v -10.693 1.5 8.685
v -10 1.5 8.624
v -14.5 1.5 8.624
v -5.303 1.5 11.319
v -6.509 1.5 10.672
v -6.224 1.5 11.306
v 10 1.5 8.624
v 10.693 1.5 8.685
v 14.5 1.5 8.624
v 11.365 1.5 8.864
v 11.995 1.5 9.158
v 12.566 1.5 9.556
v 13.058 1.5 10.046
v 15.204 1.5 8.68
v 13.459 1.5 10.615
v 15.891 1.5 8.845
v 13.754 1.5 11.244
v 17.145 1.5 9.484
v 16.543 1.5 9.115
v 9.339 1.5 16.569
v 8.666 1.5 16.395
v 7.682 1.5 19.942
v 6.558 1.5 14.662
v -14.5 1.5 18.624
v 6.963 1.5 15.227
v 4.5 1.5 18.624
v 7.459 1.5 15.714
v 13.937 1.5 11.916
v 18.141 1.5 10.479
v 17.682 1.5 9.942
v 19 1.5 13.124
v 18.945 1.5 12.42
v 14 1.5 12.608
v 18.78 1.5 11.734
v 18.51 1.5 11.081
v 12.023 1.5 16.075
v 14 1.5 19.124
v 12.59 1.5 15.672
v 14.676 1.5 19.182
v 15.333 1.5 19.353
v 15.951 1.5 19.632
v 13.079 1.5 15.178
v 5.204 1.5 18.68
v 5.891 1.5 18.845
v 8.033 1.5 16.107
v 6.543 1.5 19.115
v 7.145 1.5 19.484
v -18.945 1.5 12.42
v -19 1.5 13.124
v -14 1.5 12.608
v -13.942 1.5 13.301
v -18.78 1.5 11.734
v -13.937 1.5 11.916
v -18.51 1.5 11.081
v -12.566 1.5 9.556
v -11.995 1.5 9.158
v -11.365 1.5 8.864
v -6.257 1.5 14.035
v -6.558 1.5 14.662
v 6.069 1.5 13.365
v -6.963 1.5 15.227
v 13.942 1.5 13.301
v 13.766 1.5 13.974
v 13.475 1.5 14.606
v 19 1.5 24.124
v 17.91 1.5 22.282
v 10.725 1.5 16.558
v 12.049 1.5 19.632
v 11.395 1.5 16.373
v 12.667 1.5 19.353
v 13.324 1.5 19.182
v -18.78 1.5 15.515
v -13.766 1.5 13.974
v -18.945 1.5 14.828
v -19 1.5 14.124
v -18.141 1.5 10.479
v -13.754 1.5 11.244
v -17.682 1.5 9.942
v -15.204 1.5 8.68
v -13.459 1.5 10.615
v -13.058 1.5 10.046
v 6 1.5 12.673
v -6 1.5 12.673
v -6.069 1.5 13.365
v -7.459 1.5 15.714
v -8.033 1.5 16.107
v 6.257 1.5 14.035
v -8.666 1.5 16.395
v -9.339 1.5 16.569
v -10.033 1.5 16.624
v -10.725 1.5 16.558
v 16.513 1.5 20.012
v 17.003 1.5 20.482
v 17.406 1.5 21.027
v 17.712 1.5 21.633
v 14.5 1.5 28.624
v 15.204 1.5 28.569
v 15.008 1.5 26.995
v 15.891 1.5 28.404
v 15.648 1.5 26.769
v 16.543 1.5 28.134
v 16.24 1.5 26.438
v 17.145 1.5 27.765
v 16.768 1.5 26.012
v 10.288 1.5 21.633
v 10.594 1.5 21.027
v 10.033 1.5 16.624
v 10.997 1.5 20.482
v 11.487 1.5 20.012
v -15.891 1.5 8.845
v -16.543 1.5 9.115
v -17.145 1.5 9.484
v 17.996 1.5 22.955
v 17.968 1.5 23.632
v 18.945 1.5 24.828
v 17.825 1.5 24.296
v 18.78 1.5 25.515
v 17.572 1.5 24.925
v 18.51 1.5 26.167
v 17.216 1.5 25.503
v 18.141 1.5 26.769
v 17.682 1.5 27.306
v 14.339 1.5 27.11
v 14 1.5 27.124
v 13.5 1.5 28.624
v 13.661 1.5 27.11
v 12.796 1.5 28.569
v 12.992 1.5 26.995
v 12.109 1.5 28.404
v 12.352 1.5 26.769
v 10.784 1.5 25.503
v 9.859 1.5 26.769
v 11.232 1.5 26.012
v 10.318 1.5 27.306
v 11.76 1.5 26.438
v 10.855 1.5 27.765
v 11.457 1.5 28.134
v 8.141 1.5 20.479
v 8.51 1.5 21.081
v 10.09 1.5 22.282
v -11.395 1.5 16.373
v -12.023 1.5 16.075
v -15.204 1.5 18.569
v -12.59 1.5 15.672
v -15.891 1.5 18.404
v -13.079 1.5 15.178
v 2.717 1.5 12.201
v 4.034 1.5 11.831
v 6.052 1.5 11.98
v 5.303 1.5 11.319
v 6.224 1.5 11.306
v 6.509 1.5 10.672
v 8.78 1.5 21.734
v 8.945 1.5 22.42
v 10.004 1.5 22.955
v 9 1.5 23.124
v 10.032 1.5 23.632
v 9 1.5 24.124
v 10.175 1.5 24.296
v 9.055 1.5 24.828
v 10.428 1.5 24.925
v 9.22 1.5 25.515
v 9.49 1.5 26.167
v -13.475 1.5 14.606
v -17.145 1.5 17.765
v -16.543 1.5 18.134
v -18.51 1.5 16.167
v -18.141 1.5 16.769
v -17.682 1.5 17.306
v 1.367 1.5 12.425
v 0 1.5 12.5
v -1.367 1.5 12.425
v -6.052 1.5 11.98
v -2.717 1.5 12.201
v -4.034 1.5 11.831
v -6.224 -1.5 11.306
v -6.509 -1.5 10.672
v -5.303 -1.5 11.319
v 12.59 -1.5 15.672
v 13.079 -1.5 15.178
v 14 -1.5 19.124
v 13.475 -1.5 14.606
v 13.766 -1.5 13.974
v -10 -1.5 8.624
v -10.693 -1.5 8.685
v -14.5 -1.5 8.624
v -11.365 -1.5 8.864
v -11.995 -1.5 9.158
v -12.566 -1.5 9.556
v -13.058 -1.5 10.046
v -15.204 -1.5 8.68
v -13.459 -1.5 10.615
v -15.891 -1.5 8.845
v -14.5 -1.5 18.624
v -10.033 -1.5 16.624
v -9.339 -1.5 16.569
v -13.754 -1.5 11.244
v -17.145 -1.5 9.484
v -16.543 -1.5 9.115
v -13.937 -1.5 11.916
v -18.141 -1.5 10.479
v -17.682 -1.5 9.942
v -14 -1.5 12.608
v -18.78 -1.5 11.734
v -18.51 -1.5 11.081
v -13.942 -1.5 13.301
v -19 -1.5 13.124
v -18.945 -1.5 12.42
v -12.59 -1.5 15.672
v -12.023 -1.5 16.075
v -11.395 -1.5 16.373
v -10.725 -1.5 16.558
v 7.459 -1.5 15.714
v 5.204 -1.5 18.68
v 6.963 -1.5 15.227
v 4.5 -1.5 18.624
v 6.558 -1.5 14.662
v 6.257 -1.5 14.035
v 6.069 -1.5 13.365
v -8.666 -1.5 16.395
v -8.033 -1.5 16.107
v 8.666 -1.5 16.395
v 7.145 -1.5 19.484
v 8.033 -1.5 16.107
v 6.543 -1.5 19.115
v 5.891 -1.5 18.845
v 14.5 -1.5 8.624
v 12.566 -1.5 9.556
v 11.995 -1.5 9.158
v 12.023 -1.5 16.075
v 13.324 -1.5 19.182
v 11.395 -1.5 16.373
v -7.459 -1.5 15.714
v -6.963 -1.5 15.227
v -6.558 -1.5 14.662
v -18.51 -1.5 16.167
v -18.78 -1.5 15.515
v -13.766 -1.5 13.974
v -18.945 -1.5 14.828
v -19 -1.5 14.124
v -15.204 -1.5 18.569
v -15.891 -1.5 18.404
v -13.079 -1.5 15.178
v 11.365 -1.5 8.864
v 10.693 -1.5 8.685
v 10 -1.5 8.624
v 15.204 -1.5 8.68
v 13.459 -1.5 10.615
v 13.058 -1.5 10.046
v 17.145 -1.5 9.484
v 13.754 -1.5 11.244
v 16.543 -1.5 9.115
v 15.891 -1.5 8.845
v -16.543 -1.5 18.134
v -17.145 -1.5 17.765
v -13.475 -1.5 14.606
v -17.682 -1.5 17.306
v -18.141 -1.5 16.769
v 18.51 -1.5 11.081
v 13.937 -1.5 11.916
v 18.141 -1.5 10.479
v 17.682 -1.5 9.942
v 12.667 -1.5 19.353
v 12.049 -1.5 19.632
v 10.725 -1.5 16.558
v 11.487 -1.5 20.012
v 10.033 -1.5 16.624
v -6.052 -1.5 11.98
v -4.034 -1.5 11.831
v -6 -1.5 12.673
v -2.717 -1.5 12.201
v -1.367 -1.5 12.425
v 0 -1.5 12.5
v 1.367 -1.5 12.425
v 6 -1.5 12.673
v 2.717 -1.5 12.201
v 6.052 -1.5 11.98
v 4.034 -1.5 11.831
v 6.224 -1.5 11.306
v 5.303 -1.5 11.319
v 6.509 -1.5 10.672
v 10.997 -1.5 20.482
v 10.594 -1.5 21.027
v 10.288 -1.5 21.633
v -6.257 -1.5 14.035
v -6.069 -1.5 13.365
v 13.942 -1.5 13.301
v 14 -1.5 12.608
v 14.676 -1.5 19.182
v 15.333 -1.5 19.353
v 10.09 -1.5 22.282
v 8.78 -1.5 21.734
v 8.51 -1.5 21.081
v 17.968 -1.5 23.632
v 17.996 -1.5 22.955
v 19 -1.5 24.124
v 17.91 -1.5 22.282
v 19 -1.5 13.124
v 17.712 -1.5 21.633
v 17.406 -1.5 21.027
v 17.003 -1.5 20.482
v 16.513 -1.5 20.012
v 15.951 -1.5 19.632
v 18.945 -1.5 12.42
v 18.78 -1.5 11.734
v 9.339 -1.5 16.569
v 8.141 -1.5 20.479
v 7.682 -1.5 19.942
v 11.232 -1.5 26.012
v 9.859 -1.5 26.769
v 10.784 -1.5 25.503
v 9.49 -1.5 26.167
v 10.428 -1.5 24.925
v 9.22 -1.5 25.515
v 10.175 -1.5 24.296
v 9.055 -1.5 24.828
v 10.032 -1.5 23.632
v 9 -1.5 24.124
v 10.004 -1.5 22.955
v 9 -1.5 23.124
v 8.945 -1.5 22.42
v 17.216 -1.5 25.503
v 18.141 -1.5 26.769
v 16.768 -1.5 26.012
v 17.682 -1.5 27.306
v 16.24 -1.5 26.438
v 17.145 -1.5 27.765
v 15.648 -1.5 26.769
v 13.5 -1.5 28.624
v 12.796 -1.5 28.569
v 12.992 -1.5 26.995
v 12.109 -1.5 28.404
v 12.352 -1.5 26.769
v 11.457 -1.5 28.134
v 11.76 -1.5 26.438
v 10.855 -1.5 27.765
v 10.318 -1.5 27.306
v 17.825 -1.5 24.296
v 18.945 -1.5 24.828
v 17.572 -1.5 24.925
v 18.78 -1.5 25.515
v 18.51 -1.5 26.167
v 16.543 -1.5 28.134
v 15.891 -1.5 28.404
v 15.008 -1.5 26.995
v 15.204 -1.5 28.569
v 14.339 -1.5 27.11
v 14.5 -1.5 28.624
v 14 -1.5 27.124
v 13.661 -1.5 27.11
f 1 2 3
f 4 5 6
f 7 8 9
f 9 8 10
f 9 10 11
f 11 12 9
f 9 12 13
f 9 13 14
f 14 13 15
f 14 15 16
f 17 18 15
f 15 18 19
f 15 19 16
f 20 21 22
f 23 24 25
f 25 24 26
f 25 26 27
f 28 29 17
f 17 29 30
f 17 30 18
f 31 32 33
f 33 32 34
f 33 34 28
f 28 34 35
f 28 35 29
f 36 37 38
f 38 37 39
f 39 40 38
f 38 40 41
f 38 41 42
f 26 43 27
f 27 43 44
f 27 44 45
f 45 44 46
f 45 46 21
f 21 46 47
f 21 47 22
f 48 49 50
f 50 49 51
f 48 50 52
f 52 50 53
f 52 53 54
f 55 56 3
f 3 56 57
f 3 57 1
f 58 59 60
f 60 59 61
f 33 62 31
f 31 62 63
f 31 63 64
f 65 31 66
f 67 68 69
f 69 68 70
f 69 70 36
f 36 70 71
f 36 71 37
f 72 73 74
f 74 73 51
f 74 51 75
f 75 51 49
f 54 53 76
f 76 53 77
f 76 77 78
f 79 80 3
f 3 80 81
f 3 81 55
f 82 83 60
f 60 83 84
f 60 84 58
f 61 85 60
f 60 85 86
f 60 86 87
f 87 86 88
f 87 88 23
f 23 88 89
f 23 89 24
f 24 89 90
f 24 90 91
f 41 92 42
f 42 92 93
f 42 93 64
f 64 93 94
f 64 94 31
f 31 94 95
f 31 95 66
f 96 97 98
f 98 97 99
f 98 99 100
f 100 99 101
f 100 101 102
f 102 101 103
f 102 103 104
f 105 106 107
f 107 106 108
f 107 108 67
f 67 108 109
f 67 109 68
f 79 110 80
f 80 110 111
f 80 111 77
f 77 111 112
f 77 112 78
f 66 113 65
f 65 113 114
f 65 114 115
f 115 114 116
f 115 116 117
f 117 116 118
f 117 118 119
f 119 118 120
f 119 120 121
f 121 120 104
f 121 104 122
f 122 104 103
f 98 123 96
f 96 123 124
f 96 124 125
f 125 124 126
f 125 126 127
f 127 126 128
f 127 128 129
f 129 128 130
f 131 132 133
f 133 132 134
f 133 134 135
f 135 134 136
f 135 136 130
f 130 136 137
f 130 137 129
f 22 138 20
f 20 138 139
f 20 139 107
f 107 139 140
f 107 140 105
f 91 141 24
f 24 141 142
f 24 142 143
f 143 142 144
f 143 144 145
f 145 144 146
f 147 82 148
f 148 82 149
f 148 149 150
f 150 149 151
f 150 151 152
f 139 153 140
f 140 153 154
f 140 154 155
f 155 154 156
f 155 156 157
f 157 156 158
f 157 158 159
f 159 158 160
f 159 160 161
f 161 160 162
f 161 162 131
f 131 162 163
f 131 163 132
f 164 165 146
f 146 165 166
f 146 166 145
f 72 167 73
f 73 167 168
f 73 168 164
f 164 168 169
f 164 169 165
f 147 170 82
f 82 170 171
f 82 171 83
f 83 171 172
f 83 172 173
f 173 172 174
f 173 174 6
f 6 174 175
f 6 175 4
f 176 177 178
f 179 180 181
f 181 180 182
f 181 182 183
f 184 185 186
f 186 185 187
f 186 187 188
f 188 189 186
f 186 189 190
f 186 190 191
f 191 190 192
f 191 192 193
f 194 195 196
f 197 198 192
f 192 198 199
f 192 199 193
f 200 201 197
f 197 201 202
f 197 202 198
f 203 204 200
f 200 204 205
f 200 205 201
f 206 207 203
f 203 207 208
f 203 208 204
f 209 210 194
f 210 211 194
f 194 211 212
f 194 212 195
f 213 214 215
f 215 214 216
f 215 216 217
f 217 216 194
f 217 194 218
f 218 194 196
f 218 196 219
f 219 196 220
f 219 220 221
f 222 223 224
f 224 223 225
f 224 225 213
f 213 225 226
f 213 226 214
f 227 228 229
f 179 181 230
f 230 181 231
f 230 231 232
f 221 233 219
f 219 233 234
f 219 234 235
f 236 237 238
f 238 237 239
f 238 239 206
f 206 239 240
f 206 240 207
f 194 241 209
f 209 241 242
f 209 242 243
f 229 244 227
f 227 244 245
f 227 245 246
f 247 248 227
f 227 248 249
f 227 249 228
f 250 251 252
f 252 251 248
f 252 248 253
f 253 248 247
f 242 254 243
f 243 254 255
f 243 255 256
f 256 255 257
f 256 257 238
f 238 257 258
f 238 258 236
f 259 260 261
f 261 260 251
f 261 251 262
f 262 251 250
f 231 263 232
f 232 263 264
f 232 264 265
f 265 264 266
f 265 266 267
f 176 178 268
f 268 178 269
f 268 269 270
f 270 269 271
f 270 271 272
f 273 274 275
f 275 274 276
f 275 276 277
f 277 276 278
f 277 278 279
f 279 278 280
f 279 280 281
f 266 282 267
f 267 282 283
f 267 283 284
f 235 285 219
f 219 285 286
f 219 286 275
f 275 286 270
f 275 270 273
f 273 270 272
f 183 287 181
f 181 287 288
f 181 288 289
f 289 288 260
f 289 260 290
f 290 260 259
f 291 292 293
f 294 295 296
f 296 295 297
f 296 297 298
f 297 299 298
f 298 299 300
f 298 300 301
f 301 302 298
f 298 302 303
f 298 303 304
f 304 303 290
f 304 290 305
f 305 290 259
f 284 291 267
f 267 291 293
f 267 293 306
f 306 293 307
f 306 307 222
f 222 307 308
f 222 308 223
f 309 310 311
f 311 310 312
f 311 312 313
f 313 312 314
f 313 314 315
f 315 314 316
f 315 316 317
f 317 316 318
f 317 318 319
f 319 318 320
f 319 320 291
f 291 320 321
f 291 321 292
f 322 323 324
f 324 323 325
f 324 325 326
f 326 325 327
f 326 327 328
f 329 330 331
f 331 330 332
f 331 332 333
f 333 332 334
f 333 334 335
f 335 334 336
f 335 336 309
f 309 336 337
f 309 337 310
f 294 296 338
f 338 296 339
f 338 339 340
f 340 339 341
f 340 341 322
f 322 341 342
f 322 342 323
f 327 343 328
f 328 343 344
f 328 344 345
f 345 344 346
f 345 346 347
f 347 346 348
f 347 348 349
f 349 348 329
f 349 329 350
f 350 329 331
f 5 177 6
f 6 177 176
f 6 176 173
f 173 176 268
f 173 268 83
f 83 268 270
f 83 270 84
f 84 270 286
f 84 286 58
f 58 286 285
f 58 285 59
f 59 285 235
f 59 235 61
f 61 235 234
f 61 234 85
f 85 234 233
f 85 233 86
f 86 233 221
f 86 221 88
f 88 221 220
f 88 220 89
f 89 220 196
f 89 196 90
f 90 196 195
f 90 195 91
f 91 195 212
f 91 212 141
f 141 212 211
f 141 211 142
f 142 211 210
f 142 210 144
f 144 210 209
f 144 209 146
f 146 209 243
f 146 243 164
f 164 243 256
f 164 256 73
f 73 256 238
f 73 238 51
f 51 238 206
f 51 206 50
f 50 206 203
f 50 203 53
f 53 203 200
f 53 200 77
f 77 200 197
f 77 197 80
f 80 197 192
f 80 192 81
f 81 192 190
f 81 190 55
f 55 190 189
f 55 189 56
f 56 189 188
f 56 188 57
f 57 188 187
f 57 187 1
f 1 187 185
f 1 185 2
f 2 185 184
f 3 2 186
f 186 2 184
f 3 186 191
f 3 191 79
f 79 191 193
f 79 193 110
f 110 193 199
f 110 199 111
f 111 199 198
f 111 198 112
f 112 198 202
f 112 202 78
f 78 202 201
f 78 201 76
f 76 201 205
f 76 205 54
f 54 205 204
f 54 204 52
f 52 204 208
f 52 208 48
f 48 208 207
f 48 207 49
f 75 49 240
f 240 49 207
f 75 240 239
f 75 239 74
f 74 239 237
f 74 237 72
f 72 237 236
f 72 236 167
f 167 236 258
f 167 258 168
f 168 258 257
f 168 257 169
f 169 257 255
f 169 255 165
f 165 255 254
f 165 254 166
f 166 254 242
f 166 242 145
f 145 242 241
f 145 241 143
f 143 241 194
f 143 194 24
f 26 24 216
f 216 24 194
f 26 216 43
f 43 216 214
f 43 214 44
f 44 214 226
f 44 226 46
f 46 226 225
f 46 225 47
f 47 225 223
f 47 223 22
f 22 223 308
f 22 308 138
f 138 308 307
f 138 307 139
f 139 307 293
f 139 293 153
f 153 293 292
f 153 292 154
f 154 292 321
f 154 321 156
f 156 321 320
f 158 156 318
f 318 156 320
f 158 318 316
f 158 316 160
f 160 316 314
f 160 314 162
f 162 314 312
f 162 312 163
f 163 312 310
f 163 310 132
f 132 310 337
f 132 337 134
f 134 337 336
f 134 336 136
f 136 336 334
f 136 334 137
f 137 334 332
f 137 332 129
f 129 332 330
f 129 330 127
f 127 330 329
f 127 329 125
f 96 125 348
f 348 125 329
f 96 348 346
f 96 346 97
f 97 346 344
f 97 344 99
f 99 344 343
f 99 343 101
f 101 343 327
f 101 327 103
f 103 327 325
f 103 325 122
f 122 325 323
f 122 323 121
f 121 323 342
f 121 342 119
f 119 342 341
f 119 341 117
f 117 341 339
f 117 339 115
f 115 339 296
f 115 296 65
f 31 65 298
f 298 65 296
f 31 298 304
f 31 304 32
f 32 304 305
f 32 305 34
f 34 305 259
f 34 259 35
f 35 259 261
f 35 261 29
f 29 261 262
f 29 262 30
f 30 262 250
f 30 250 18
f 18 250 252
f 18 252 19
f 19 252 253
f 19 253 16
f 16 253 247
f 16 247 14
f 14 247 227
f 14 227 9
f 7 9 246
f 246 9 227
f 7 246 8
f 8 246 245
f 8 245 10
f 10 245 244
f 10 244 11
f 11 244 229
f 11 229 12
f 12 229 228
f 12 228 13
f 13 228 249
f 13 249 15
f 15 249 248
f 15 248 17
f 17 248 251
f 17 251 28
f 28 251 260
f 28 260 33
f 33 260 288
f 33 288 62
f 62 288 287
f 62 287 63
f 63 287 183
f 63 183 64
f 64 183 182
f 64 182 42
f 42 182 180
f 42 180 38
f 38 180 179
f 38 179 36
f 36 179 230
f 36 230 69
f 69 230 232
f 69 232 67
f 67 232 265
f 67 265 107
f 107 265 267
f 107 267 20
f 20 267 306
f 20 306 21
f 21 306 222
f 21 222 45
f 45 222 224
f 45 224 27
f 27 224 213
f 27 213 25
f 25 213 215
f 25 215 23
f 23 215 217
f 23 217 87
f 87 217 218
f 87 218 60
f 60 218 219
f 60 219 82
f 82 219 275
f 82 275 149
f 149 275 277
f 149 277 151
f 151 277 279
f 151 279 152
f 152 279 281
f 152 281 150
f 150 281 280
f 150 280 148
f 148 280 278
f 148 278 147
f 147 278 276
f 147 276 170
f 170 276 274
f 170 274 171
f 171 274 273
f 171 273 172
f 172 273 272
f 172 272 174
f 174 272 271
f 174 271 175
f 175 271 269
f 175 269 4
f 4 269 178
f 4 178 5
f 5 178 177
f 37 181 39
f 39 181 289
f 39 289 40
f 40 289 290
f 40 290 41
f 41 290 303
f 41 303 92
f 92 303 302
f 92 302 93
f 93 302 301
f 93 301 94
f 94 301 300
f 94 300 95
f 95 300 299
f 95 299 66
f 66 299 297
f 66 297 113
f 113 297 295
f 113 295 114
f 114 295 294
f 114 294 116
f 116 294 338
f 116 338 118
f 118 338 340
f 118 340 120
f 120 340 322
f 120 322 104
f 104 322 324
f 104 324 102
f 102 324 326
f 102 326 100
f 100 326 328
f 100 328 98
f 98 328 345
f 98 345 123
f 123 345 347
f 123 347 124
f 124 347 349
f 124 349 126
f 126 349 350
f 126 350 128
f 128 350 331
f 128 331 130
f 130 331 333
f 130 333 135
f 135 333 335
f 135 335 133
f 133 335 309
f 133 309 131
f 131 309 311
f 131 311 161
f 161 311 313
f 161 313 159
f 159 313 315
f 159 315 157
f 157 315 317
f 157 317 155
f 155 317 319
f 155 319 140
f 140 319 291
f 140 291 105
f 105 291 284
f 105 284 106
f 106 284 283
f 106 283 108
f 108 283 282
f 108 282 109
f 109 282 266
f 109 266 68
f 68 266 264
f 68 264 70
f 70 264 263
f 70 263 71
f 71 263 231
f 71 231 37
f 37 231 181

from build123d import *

# Parameters (mm, degrees)
SKETCH1_R           = 4
BOSS_EXTRUDE1_DEPTH = 1.5


with BuildPart() as part:
    # Sketch1 → Boss-Extrude1 (new, symmetric)
    with BuildSketch(Plane(origin=(0, 0, 0), x_dir=(1, 0, 0), z_dir=(0, 1, 0))):
        with BuildLine():
            Line((-10, -8.624404748), (-14.5, -8.624404748))
            ThreePointArc((-14.5, -8.624404748), (-17.681980515, -9.942424233), (-19, -13.124404748))
            Line((-19, -13.124404748), (-19, -14.124404748))
            ThreePointArc((-19, -14.124404748), (-17.681980515, -17.306385264), (-14.5, -18.624404748))
            Line((-14.5, -18.624404748), (4.5, -18.624404748))
            ThreePointArc((4.5, -18.624404748), (7.681980515, -19.942424233), (9, -23.124404748))
            Line((9, -23.124404748), (9, -24.124404748))
            ThreePointArc((9, -24.124404748), (10.318019485, -27.306385264), (13.5, -28.624404748))
            Line((13.5, -28.624404748), (14.5, -28.624404748))
            ThreePointArc((14.5, -28.624404748), (17.681980515, -27.306385264), (19, -24.124404748))
            Line((19, -24.124404748), (19, -13.124404748))
            ThreePointArc((19, -13.124404748), (17.681980515, -9.942424233), (14.5, -8.624404748))
            Line((14.5, -8.624404748), (10, -8.624404748))
            ThreePointArc((10, -8.624404748), (12.023420987, -16.074878268), (6.509119733, -10.671520993))
            ThreePointArc((6.509119733, -10.671520993), (0, -12.5), (-6.509119733, -10.671520993))
            ThreePointArc((-6.509119733, -10.671520993), (-12.023420987, -16.074878268), (-10, -8.624404748))
        make_face()
        with Locations(Location((14, -23.124404748, 0), (0, 0, 270))):
            Circle(SKETCH1_R, mode=Mode.SUBTRACT)
    extrude(amount=BOSS_EXTRUDE1_DEPTH, both=True)


solid = part.part
